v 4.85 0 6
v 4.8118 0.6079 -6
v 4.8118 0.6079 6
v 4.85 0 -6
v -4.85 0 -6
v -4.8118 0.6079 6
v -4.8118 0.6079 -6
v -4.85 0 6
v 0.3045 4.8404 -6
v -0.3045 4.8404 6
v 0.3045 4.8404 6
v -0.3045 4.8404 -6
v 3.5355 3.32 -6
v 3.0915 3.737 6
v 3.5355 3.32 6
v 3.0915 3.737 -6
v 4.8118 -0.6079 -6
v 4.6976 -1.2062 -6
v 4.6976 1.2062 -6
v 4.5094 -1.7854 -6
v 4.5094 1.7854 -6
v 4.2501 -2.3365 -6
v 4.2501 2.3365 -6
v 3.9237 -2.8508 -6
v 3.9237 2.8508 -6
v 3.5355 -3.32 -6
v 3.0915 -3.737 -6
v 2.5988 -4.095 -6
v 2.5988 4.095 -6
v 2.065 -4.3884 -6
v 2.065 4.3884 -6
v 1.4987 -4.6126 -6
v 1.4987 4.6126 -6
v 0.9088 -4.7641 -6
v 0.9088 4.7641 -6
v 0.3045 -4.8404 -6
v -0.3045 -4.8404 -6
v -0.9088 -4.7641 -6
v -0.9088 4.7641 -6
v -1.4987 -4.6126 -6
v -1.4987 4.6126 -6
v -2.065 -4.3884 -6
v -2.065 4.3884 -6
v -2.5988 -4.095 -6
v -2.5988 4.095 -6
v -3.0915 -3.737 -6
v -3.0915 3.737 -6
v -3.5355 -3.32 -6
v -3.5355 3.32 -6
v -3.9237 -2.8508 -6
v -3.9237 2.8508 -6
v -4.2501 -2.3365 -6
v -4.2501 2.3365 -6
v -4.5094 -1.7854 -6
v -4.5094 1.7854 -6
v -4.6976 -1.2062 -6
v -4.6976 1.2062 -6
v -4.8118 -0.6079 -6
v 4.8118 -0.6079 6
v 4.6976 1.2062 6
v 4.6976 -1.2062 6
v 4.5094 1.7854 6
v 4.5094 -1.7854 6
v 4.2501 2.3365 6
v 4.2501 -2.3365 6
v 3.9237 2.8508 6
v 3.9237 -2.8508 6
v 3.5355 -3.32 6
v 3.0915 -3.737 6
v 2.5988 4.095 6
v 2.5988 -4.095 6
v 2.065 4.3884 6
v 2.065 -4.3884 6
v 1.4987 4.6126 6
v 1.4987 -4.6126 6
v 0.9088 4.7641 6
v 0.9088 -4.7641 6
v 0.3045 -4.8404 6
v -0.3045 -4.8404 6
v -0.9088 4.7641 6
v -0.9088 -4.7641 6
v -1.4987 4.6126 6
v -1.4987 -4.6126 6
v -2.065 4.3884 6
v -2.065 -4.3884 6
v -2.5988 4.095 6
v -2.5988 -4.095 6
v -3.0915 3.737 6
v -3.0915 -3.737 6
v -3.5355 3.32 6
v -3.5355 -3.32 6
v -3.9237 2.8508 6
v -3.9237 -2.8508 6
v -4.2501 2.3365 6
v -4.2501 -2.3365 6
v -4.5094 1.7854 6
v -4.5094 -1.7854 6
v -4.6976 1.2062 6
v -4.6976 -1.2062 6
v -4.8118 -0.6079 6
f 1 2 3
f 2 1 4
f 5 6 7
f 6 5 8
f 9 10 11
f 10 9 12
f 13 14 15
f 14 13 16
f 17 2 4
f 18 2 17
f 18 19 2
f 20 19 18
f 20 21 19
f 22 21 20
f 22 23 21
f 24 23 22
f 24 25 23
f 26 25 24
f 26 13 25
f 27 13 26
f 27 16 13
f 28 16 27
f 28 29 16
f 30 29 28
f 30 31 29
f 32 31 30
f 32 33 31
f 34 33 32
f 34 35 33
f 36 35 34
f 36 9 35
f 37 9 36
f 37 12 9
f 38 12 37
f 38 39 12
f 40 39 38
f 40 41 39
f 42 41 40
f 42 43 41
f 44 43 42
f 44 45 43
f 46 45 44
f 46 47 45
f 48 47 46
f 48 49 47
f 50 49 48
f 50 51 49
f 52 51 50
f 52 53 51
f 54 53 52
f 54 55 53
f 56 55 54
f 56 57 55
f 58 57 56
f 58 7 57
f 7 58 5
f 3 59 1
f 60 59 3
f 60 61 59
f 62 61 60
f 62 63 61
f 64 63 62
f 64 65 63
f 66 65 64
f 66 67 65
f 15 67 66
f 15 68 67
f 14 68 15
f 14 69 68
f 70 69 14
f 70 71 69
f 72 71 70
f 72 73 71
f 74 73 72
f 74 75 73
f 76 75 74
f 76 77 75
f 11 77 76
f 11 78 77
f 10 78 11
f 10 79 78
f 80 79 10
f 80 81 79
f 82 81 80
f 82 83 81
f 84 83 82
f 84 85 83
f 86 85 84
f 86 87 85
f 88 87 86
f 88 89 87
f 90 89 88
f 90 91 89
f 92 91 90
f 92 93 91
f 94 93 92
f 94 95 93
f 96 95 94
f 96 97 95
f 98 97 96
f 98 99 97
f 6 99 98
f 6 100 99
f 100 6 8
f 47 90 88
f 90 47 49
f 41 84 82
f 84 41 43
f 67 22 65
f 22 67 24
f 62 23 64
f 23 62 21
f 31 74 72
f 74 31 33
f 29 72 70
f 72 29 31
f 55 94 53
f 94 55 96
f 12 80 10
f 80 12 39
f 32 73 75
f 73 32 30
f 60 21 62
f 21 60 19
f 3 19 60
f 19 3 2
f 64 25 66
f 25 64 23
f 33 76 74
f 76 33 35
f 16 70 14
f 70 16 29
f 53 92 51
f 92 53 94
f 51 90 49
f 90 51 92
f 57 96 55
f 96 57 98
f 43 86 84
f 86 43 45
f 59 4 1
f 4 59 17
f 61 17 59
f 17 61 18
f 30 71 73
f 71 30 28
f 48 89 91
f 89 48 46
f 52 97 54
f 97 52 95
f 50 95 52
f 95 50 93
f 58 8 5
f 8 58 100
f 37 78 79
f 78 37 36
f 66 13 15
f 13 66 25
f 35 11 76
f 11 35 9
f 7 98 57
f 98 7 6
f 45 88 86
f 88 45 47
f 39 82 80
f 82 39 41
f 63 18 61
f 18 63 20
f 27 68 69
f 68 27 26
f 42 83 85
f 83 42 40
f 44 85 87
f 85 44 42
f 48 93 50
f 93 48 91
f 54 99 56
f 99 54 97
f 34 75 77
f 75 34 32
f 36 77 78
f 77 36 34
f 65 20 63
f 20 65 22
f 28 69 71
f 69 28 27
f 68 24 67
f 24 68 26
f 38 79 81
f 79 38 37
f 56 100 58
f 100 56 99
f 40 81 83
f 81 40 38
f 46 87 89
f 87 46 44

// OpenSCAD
$fn = 50;


difference() {
	union() {
		translate(v = [0, 0, -6.0000000000]) {
			cylinder(h = 12, r = 4.8500000000);
		}
	}
	union() {
		translate(v = [0, 0, -100.0000000000]) {
			cylinder(h = 200, r = 0);
		}
	}
}
